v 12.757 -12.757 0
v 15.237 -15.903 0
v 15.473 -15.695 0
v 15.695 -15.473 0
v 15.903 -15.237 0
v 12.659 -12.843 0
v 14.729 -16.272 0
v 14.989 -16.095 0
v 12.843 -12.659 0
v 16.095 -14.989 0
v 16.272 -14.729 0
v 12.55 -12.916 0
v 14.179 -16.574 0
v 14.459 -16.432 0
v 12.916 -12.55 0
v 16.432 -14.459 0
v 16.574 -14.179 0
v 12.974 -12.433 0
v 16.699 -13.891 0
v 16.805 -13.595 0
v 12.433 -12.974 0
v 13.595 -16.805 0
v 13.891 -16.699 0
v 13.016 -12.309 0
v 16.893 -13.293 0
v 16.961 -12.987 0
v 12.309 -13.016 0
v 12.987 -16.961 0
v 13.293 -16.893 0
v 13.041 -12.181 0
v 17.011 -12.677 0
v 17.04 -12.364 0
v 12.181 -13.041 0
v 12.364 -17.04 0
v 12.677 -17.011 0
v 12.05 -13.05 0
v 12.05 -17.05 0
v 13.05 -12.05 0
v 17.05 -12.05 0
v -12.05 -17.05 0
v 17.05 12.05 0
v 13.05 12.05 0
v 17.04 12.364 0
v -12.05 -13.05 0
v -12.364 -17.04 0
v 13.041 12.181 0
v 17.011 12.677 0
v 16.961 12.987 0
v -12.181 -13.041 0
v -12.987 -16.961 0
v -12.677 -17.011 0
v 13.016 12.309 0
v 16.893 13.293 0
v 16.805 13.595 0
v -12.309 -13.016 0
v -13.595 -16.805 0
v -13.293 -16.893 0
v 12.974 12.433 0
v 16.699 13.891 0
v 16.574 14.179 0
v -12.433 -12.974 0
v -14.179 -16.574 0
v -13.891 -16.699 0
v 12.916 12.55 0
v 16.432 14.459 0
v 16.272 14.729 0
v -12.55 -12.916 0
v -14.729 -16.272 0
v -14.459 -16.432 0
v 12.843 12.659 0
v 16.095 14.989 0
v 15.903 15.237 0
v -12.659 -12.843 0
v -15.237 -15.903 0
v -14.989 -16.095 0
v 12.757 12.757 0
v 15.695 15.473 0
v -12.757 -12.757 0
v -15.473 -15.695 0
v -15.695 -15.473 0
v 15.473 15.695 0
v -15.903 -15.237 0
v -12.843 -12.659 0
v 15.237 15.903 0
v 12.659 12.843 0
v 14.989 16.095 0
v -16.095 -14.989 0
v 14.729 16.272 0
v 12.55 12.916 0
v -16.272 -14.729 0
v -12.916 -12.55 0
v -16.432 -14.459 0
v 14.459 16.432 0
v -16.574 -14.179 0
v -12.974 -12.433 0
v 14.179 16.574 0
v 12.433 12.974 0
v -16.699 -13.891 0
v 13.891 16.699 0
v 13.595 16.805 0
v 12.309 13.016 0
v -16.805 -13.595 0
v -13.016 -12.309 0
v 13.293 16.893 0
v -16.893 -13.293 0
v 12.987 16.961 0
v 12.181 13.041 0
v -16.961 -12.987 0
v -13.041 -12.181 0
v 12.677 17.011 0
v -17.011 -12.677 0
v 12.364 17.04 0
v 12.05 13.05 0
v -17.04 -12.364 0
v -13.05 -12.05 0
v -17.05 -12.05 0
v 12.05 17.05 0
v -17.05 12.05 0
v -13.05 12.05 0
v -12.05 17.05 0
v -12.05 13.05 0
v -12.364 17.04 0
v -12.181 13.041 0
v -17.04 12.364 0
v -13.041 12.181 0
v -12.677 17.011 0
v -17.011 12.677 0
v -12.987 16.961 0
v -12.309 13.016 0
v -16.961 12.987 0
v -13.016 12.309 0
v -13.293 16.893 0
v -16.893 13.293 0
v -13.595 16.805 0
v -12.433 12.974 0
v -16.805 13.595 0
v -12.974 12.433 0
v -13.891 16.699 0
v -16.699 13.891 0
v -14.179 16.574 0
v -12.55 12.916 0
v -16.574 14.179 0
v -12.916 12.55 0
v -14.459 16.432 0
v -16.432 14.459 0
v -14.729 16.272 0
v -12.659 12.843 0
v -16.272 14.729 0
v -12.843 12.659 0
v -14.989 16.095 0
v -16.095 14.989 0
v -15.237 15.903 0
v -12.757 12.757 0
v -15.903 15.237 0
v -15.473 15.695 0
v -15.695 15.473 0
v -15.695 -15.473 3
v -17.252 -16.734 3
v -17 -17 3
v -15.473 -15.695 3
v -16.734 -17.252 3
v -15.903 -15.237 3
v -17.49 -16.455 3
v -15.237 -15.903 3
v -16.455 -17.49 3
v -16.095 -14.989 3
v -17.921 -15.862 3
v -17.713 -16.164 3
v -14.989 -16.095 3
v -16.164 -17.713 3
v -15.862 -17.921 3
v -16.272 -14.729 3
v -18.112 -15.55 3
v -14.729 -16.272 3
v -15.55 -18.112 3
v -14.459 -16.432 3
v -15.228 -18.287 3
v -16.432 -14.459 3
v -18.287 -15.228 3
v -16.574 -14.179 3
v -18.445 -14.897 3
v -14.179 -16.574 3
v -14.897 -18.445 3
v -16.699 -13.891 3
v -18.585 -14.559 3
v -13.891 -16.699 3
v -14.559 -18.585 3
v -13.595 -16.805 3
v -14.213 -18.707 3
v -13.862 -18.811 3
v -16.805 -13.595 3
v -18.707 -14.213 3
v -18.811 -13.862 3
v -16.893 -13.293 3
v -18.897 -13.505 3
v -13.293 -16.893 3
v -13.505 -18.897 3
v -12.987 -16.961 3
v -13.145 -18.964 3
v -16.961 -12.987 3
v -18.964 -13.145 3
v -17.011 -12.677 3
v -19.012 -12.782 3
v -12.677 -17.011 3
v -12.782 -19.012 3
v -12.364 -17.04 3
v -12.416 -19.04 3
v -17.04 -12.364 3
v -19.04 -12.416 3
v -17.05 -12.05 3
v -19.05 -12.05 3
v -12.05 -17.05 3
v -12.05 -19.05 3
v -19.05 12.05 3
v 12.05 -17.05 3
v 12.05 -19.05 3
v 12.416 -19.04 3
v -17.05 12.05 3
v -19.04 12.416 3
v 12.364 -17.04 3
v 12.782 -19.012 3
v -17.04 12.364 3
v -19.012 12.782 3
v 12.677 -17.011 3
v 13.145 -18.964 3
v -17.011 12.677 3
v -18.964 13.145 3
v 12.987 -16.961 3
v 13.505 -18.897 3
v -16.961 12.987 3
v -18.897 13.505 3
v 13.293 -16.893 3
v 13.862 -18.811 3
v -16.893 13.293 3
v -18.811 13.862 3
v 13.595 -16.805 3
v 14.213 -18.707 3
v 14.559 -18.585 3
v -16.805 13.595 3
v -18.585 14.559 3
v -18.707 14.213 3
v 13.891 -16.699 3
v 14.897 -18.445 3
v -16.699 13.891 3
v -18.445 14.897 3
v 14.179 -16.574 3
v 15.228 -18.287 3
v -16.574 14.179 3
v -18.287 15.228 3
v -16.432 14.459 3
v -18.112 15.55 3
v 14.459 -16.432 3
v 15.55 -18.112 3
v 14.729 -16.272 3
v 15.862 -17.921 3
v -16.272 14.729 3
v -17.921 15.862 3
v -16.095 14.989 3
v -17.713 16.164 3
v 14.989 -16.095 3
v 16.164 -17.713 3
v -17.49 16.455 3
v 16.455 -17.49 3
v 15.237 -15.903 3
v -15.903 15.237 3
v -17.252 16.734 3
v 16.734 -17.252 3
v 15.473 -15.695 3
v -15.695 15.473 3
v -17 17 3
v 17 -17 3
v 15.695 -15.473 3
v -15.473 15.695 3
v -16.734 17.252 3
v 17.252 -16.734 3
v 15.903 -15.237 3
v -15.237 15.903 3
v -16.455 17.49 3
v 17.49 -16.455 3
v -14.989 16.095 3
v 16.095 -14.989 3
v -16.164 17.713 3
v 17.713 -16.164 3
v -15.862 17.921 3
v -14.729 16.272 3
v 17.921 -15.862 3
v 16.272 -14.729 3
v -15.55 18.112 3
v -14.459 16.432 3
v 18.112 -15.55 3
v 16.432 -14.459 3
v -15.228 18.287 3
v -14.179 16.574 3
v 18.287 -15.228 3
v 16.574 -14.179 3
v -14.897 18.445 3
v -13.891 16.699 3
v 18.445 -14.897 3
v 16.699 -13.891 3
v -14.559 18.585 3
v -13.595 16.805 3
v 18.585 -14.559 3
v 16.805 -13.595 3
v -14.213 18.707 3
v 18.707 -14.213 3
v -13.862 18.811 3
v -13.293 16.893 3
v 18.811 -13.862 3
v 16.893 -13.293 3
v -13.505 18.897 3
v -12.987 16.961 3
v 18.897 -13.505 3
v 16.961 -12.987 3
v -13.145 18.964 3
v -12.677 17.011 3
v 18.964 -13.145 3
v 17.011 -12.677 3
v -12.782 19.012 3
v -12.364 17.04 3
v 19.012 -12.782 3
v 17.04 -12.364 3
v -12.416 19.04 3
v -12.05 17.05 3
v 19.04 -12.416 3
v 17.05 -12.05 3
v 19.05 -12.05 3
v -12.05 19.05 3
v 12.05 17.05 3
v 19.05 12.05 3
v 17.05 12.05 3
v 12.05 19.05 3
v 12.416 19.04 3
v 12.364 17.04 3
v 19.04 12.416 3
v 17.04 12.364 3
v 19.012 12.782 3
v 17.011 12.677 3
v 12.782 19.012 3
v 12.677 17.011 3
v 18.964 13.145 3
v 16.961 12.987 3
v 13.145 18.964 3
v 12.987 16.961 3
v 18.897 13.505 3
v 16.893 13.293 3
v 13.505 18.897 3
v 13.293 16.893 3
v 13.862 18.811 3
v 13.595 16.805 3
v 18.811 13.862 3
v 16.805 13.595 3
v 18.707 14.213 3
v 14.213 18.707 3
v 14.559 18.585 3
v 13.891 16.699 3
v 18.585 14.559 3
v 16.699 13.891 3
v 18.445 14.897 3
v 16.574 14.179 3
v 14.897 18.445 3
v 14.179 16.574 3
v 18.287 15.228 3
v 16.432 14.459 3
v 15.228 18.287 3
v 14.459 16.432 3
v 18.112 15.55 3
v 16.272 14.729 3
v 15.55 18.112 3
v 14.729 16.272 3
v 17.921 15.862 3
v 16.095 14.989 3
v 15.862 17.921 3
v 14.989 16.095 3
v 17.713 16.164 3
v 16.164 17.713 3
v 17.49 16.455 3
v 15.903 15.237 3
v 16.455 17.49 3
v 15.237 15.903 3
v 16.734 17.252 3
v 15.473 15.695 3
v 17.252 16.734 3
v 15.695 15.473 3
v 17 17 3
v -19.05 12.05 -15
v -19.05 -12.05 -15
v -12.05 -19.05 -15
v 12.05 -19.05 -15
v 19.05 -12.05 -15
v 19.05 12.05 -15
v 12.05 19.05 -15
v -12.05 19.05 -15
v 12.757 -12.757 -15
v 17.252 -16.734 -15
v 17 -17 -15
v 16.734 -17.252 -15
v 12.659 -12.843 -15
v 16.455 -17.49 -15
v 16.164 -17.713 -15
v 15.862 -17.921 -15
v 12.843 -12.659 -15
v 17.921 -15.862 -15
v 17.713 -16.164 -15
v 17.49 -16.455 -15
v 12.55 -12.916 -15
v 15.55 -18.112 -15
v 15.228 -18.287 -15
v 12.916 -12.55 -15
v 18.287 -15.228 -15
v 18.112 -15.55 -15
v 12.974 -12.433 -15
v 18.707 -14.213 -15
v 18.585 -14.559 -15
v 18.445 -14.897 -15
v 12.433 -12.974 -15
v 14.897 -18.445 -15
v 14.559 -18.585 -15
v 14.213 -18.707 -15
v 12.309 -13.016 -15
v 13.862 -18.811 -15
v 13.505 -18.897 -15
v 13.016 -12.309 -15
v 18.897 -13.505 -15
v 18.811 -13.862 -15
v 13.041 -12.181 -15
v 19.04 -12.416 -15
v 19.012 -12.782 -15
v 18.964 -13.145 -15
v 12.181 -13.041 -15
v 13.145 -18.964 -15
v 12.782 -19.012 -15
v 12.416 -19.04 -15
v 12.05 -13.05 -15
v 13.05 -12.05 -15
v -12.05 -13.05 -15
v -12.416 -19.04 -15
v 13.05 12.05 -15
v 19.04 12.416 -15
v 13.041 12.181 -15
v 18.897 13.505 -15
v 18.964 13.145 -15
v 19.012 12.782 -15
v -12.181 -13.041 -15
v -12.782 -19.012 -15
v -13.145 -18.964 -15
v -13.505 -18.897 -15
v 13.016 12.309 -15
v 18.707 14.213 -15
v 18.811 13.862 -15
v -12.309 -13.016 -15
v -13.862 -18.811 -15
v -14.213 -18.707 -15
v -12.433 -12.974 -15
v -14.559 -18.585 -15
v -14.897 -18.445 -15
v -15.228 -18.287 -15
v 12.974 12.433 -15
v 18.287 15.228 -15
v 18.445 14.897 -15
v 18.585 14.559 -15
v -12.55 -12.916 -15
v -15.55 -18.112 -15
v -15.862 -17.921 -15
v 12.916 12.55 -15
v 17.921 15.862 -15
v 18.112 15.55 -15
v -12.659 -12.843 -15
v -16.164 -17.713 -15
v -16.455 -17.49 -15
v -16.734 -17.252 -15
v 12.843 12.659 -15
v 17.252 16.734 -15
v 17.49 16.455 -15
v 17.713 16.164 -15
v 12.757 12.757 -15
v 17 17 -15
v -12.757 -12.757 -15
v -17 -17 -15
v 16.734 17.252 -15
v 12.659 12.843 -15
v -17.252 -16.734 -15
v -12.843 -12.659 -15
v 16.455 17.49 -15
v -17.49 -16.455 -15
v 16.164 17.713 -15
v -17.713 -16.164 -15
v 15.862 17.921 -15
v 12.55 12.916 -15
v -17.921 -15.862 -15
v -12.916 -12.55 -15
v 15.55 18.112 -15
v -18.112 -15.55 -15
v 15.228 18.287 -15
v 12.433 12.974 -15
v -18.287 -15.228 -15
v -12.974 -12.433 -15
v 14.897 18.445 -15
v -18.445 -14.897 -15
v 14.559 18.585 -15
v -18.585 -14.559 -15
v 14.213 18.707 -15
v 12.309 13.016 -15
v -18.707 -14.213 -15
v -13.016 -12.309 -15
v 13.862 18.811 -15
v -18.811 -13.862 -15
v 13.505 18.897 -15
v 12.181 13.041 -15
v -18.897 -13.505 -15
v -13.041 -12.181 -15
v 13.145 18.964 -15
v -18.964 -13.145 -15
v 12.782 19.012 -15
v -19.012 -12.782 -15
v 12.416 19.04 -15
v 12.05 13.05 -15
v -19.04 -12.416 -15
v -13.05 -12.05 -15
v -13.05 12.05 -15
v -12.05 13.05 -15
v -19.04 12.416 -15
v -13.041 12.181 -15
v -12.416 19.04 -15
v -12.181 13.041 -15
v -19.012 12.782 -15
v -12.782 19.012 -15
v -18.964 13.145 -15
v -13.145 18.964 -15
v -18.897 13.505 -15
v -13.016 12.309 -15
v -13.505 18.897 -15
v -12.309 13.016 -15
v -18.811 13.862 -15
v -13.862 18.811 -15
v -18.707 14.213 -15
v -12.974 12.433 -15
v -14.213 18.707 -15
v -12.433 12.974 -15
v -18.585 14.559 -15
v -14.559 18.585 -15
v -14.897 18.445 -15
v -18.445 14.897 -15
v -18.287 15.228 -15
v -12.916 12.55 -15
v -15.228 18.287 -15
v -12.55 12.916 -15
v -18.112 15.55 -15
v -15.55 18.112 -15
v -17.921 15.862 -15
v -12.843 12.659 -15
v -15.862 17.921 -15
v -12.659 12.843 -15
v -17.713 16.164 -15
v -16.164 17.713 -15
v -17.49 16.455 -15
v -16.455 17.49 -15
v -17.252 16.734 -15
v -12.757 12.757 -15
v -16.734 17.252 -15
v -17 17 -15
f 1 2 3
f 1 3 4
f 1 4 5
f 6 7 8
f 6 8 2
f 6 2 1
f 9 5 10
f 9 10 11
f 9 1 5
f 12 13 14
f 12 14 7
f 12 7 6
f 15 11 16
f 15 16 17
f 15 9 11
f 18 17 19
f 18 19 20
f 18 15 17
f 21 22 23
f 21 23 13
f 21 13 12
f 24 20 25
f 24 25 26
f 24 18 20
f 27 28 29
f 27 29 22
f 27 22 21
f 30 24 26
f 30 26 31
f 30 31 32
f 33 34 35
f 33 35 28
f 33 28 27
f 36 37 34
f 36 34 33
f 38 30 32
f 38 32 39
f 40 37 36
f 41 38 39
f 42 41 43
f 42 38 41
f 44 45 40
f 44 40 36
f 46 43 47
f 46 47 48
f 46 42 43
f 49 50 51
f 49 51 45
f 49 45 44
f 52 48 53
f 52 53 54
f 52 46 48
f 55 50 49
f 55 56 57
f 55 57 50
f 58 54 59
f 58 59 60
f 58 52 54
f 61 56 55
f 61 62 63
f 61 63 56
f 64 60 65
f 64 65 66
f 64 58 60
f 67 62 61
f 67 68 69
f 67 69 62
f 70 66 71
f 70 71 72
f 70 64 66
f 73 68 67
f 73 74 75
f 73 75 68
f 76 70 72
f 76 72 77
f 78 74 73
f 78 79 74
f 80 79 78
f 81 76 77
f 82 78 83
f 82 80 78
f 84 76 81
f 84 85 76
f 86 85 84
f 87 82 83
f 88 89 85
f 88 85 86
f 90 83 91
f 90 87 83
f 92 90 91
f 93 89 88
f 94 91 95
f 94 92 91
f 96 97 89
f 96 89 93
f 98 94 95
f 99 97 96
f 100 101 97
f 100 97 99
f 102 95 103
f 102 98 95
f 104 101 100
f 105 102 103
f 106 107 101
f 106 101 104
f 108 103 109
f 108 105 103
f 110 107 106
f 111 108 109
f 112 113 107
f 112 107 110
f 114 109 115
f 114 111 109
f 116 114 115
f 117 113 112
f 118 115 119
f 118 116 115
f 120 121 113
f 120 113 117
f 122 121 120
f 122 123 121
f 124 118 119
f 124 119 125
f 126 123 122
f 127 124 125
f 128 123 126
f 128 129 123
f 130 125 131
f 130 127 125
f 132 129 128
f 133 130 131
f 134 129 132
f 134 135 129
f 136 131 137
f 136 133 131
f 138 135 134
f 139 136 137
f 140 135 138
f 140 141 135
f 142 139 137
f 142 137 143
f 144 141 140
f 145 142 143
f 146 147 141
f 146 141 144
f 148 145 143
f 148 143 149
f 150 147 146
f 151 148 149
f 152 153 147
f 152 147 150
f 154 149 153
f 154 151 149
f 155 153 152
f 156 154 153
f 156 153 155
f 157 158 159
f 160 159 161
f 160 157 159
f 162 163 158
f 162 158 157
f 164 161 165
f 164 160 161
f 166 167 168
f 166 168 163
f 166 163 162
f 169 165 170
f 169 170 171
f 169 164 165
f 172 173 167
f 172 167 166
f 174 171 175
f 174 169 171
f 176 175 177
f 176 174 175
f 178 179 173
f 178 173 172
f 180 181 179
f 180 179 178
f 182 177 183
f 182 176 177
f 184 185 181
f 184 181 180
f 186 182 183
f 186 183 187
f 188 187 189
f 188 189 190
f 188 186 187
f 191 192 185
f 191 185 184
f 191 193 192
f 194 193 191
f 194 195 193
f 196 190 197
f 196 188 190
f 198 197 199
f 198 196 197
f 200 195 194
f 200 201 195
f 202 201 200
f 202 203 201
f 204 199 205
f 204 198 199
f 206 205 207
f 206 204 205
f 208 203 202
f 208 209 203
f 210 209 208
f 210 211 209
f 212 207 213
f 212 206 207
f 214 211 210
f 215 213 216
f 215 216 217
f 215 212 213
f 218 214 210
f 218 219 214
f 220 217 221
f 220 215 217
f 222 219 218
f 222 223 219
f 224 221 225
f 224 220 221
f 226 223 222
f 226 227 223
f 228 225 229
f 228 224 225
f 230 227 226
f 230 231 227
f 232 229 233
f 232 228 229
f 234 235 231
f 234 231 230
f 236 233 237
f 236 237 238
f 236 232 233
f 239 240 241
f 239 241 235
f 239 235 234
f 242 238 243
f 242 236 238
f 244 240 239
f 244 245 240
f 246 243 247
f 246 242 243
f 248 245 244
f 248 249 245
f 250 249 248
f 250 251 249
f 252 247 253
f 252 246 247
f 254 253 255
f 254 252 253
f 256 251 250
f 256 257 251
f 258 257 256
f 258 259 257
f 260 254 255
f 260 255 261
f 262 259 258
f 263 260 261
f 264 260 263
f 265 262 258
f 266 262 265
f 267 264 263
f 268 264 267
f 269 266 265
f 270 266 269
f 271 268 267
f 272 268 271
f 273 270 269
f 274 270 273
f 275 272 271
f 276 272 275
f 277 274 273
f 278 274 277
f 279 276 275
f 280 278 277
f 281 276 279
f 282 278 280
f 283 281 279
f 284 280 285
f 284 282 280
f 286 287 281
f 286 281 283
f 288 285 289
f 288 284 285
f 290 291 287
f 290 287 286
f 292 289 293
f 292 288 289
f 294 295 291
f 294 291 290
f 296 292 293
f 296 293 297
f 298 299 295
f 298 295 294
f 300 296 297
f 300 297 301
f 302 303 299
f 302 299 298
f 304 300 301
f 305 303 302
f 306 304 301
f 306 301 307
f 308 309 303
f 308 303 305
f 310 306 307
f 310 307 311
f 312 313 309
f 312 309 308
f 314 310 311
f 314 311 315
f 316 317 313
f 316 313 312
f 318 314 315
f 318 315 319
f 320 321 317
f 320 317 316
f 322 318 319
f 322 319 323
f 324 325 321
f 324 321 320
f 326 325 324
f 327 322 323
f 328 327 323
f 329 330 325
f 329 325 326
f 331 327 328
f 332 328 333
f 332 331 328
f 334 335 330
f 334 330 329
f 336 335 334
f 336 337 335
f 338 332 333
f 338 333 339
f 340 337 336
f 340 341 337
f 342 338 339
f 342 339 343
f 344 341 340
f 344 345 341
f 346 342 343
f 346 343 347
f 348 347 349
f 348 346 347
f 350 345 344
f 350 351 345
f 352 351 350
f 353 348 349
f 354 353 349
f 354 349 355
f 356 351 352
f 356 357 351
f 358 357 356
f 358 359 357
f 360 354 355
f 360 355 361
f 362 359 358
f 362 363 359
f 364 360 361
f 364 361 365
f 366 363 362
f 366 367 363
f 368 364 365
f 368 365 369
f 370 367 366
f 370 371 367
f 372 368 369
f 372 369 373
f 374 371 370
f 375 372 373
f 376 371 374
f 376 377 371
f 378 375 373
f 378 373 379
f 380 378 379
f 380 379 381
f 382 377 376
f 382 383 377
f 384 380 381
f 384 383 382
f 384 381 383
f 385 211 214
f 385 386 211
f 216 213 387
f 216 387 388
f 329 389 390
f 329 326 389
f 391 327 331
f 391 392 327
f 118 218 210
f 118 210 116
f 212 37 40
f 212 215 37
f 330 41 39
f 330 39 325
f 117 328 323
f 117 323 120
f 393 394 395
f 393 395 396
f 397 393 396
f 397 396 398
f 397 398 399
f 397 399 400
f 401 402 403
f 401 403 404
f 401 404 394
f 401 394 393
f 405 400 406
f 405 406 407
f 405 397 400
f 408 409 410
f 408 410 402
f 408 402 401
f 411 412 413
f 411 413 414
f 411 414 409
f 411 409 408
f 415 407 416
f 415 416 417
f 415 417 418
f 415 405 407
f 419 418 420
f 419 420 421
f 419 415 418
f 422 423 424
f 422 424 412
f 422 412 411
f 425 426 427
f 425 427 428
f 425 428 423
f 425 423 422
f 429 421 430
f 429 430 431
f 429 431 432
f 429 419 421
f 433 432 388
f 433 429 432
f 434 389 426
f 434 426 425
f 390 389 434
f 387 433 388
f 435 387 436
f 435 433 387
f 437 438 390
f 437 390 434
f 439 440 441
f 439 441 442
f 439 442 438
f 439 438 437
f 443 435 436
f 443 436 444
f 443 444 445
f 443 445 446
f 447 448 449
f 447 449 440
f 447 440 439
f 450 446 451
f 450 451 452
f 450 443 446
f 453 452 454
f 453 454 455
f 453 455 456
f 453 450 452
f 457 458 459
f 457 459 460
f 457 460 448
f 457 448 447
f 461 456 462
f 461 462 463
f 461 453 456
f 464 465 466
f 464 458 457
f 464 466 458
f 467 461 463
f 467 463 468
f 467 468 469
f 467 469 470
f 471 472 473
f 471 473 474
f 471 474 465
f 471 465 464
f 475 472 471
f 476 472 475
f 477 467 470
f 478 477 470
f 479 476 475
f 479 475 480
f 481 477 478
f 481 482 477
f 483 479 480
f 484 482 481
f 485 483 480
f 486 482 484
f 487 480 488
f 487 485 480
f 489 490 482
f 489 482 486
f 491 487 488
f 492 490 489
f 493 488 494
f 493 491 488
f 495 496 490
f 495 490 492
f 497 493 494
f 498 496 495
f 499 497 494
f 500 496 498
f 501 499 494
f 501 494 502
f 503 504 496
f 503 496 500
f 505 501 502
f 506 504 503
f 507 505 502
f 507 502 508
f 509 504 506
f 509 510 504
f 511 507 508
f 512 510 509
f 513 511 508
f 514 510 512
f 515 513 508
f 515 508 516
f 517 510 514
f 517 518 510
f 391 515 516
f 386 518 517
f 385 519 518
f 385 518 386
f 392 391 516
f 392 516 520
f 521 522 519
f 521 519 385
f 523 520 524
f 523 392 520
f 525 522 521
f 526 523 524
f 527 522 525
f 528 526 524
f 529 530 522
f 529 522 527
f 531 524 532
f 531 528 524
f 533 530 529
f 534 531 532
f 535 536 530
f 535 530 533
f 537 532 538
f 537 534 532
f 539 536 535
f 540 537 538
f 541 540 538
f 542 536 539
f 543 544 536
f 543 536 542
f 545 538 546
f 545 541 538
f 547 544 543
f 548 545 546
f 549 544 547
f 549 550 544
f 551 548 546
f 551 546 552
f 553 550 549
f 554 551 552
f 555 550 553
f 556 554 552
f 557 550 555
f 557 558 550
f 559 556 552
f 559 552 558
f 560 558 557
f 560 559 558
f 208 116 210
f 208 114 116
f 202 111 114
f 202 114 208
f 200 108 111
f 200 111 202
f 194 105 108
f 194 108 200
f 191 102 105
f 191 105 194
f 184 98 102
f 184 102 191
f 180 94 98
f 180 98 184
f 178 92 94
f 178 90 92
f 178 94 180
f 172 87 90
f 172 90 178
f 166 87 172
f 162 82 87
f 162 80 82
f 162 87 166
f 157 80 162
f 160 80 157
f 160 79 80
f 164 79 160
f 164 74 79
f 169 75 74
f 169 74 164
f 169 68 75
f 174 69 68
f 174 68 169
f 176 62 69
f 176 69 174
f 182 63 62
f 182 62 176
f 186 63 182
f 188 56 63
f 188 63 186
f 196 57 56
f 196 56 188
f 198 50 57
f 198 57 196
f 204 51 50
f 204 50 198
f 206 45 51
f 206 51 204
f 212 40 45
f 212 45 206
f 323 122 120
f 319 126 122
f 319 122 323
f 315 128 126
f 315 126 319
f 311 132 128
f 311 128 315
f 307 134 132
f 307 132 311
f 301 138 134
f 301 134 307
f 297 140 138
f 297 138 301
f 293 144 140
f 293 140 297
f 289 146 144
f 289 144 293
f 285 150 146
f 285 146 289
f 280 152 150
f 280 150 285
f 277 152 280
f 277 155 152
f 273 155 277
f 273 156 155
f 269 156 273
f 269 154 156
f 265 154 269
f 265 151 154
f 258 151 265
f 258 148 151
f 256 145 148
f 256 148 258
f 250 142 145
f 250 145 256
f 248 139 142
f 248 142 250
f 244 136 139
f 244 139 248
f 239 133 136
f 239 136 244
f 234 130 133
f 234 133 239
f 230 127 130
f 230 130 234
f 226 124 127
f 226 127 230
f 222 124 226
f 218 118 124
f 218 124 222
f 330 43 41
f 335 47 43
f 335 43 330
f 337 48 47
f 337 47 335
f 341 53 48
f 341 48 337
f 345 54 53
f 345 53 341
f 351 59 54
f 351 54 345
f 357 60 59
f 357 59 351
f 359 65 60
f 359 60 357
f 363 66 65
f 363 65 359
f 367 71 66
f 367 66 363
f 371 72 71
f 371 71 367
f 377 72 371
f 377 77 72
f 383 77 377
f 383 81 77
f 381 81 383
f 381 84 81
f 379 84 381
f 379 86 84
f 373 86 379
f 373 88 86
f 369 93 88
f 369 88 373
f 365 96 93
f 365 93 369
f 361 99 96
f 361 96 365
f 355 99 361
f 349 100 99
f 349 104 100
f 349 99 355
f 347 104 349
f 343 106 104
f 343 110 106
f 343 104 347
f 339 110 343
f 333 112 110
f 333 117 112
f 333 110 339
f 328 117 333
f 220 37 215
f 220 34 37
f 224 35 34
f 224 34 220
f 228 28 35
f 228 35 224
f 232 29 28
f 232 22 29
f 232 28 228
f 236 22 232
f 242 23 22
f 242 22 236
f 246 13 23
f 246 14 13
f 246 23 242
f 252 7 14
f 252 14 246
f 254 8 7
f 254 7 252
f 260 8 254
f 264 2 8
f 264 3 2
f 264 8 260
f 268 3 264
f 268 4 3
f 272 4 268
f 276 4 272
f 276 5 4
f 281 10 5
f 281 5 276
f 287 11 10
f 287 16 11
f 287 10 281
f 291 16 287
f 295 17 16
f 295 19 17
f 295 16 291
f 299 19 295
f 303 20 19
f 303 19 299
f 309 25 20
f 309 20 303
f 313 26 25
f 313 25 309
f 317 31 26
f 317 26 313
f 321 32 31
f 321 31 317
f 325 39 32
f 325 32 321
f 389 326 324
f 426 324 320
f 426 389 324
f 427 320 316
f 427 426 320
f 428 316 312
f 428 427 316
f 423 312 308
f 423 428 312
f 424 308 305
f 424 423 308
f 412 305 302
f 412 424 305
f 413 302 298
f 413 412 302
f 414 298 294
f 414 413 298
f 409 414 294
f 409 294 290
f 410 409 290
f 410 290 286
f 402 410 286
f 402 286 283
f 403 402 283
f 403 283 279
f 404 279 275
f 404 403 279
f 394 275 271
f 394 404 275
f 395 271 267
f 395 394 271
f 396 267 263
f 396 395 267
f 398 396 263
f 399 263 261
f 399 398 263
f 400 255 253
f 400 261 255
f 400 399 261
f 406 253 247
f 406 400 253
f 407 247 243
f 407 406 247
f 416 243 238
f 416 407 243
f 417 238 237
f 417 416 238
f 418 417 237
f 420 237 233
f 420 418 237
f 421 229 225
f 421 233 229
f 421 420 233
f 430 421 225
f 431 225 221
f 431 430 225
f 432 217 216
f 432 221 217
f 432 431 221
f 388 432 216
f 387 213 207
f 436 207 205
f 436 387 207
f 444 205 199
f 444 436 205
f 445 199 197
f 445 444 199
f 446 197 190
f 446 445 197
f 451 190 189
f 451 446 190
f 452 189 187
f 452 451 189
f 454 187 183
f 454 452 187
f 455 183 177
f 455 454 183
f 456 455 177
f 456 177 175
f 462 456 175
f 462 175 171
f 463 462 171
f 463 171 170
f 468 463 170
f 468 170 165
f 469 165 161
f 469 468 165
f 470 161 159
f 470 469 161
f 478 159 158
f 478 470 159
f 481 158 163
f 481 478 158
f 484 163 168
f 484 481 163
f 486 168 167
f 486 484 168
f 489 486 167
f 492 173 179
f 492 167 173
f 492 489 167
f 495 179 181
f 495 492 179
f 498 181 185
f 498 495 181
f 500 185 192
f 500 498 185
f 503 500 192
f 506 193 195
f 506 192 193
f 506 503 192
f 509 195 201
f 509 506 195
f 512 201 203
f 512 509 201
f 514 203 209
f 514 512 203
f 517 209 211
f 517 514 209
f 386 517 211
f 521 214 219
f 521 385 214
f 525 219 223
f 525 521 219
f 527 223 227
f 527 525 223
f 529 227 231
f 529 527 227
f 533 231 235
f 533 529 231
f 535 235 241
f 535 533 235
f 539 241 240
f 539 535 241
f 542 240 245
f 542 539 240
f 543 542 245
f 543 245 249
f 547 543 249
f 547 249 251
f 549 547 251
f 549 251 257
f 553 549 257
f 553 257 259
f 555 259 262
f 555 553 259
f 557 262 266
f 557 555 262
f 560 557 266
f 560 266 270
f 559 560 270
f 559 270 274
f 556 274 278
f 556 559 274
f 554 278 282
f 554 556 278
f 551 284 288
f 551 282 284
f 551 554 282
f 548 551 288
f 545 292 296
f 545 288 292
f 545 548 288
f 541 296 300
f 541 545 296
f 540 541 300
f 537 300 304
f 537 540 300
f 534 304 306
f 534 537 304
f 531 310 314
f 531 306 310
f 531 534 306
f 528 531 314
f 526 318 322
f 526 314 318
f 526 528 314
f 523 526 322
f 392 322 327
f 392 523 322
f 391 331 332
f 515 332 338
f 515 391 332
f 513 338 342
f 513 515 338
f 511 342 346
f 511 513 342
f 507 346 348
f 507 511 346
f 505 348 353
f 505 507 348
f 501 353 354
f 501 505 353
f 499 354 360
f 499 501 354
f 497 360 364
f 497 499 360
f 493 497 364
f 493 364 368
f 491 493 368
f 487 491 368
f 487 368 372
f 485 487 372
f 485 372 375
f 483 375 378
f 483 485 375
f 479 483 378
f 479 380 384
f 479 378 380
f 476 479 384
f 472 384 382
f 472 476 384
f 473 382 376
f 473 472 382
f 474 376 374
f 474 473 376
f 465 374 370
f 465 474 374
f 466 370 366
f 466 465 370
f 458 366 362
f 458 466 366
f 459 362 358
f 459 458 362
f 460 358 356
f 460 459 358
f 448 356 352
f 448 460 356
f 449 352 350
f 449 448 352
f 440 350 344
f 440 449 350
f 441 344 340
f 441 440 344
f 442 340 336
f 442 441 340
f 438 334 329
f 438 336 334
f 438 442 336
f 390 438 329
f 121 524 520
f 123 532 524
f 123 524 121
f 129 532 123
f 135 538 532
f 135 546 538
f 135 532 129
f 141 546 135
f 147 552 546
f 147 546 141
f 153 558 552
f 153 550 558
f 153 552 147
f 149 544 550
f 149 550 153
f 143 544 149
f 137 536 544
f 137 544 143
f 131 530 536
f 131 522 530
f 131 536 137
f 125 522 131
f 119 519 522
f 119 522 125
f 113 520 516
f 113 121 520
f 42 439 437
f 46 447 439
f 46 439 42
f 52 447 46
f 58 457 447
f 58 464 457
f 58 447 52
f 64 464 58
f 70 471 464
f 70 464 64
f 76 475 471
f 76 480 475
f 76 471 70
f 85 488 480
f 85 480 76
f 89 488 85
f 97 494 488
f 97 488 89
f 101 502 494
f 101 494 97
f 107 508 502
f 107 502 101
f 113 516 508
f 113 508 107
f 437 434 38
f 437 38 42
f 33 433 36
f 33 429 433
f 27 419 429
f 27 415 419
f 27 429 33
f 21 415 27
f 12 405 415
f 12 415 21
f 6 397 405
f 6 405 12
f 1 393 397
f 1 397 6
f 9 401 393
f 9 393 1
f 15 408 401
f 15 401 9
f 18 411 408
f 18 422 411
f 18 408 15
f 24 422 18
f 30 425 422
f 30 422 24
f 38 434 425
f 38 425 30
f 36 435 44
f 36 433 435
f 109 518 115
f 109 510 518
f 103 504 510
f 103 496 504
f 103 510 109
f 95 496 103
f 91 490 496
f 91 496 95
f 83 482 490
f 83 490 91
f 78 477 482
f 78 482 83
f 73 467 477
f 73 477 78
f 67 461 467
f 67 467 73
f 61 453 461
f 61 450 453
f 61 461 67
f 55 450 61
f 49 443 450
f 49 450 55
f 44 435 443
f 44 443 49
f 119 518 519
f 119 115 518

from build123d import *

# Parameters (mm, degrees)
SKIZZE1_W                       = 38.1
SKIZZE1_H                       = 38.1
SKIZZE1_W_2                     = 34.1
SKIZZE1_H_2                     = 34.1
AUFSATZ_LINEAR_AUSTRAGEN1_DEPTH = 3
SKIZZE2_W                       = 38.1
SKIZZE2_H                       = 38.1
AUFSATZ_LINEAR_AUSTRAGEN2_DEPTH = 15
VERRUNDUNG1_R                   = 5
VERRUNDUNG2_R                   = 7
SCHNITT_LINEAR_AUSTRAGEN1_DEPTH = 15


with BuildPart() as part:
    # Skizze1 → Aufsatz-Linear austragen1 (new body)
    with BuildSketch(Plane.XY):
        Rectangle(SKIZZE1_W, SKIZZE1_H)
        Rectangle(SKIZZE1_W_2, SKIZZE1_H_2, mode=Mode.SUBTRACT)
    extrude(amount=AUFSATZ_LINEAR_AUSTRAGEN1_DEPTH)

    # Skizze2 → Aufsatz-Linear austragen2 (add)
    with BuildSketch(Plane(origin=(0, 0, 0), x_dir=(-1, 0, 0), z_dir=(0, 0, -1))):
        Rectangle(SKIZZE2_W, SKIZZE2_H)
    extrude(amount=AUFSATZ_LINEAR_AUSTRAGEN2_DEPTH)

    # Verrundung1
    verrundung1_edges = [part.edges().sort_by_distance(p)[0] for p in [
        (-17.05, 17.05, 1.5),
        (-17.05, -17.05, 1.5),
        (17.05, -17.05, 1.5),
        (17.05, 17.05, 1.5),
    ]]
    fillet(verrundung1_edges, radius=VERRUNDUNG1_R)

    # Verrundung2
    verrundung2_edges = [part.edges().sort_by_distance(p)[0] for p in [
        (-19.05, 19.05, -6),
        (19.05, 19.05, -6),
        (19.05, -19.05, -6),
        (-19.05, -19.05, -6),
    ]]
    fillet(verrundung2_edges, radius=VERRUNDUNG2_R)

    # Skizze3 → Schnitt-Linear austragen1 (cut)
    with BuildSketch(Plane.XY):
        with BuildLine():
            Line((-13.05, 12.05), (-13.05, -12.05))
            ThreePointArc((-13.05, -12.05), (-12.757106781, -12.757106781), (-12.05, -13.05))
            Line((-12.05, -13.05), (12.05, -13.05))
            ThreePointArc((12.05, -13.05), (12.757106781, -12.757106781), (13.05, -12.05))
            Line((13.05, -12.05), (13.05, 12.05))
            ThreePointArc((13.05, 12.05), (12.757106781, 12.757106781), (12.05, 13.05))
            Line((12.05, 13.05), (-12.05, 13.05))
            ThreePointArc((-12.05, 13.05), (-12.757106781, 12.757106781), (-13.05, 12.05))
        make_face()
    extrude(amount=-SCHNITT_LINEAR_AUSTRAGEN1_DEPTH, mode=Mode.SUBTRACT)


solid = part.part
